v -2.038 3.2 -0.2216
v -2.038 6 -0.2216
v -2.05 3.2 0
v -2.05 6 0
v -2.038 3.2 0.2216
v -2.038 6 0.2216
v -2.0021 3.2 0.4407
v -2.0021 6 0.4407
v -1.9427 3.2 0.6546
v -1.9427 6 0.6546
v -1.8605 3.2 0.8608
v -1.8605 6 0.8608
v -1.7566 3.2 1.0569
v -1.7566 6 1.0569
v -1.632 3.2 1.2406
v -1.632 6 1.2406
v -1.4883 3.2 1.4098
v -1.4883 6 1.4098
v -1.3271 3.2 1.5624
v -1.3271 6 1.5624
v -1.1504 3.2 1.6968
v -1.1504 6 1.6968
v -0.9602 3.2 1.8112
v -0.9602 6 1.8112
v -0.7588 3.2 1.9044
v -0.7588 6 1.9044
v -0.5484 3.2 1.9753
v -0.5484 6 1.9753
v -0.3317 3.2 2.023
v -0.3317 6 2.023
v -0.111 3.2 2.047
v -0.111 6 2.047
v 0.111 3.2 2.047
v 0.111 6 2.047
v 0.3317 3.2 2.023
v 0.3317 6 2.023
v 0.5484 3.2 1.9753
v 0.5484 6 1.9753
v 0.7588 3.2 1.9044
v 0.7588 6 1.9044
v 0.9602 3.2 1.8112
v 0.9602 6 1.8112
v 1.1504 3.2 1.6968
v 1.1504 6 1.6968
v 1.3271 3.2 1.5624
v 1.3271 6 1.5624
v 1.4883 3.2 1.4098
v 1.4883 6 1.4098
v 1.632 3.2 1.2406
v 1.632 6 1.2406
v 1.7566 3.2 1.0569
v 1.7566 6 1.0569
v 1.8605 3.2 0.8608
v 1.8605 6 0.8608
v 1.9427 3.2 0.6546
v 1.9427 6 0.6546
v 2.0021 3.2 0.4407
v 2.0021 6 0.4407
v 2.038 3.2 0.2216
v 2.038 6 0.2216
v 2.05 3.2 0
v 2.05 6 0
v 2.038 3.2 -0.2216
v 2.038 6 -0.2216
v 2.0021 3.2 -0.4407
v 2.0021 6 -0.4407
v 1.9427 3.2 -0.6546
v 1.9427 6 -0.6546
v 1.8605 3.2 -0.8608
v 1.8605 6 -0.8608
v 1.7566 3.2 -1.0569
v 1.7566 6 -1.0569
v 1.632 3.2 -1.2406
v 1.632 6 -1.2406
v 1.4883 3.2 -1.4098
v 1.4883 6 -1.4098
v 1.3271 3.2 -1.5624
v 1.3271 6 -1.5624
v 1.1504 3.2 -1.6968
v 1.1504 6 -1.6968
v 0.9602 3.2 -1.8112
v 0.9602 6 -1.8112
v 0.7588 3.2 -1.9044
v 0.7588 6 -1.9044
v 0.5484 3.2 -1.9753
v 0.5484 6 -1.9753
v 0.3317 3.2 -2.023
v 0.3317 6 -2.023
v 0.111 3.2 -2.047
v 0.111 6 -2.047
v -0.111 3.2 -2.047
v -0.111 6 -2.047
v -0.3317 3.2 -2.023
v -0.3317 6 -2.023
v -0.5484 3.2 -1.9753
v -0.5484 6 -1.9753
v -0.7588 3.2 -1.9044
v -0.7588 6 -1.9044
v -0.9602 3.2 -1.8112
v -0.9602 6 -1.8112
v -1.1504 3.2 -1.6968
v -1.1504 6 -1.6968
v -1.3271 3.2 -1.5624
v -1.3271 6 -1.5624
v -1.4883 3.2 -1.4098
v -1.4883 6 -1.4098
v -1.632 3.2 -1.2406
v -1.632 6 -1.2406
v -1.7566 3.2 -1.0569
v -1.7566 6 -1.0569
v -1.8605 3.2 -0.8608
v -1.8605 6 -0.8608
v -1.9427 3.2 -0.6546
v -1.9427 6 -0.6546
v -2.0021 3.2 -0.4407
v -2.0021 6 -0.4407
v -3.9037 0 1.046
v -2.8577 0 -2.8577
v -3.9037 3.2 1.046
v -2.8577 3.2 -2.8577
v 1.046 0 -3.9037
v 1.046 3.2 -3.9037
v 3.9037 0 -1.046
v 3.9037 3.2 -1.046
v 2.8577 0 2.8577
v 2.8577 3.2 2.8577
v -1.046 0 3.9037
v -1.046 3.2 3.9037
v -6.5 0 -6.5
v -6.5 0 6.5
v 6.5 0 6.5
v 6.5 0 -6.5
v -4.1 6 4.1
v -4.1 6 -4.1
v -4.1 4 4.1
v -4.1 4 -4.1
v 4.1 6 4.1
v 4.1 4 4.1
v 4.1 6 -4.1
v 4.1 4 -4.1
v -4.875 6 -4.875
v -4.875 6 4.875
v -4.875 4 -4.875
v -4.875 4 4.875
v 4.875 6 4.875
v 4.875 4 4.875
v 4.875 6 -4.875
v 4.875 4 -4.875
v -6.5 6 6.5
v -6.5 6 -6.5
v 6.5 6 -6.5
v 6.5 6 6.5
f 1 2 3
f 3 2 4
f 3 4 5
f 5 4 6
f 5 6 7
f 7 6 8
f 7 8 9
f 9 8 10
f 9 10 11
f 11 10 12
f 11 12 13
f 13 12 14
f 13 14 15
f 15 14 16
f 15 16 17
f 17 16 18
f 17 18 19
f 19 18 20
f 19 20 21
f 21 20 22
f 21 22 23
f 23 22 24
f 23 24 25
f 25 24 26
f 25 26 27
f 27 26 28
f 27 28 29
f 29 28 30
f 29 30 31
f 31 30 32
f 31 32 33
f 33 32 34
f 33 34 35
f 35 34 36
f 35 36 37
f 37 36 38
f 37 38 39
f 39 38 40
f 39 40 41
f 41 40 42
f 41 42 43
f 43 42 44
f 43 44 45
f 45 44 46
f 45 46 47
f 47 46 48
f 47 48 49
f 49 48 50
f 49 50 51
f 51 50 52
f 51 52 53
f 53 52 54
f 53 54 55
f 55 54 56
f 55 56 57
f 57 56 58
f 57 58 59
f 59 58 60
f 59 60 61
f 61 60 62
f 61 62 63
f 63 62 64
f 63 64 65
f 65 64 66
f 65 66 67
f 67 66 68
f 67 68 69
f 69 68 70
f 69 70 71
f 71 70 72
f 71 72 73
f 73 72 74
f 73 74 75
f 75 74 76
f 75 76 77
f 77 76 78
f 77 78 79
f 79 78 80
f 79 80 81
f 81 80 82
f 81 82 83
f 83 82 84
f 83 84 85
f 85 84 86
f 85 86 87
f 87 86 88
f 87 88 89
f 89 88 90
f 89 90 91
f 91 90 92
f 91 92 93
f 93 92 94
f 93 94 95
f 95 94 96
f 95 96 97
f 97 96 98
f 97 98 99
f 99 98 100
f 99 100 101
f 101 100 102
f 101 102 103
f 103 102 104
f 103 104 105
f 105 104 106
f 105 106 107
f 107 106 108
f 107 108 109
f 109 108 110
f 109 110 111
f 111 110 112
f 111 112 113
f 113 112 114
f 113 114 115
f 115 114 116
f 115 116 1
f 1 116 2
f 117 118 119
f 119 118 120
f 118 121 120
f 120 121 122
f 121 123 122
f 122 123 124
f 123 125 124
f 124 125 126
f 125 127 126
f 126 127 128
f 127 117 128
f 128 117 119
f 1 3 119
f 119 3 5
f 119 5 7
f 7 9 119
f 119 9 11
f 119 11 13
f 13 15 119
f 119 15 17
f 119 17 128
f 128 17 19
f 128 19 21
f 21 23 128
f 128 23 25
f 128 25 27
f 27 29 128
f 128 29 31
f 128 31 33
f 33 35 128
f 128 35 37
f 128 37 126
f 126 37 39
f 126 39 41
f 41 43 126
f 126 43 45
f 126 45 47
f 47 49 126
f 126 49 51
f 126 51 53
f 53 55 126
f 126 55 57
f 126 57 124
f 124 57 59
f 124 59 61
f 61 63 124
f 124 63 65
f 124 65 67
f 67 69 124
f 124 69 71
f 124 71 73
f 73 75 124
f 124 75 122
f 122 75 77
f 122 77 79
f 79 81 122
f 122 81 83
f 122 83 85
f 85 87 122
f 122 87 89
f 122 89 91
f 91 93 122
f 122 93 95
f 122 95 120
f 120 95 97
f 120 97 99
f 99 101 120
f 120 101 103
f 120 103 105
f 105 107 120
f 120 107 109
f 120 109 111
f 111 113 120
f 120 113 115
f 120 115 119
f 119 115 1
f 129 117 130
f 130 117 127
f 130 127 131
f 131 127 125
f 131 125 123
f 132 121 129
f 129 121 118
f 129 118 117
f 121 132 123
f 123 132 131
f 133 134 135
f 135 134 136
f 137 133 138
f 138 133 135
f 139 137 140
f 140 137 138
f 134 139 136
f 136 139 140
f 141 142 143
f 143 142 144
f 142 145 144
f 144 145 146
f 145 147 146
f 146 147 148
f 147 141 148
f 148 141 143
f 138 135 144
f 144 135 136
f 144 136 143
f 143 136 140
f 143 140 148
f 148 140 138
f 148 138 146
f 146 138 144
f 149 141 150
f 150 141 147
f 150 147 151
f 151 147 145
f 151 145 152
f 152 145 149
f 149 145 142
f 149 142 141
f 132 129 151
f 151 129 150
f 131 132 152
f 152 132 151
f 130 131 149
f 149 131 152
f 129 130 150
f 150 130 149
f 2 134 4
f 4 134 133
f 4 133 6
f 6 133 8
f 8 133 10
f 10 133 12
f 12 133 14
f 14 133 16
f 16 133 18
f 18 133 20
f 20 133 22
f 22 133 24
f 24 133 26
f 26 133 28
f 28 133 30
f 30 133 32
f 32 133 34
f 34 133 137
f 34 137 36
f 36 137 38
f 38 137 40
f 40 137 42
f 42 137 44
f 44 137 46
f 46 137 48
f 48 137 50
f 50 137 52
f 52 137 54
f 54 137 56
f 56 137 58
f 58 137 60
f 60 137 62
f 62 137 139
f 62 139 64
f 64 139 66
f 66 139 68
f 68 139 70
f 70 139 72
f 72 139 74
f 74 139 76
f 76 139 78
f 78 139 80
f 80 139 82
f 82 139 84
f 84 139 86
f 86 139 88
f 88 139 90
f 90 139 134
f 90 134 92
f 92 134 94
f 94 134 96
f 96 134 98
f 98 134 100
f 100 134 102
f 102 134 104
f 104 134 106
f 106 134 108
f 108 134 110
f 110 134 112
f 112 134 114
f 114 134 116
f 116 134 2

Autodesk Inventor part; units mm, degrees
ref_plane "YZ Plane" through (0, 0, 0) normal (1, 0, 0) x (0, 1, 0)
ref_plane "XY Plane" through (0, 0, 0) normal (0, 0, 1) x (1, 0, 0)
ref_plane "作業平面2" through (0, 6, 0) normal (0, 1, 0) x (-1, 0, 0)
sketch "スケッチ3" plane through (0, 6, 0) normal (0, 1, 0) x (-1, 0, 0)
  line L0 (4.1, -4.1) -> (-4.1, -4.1)
  line L1 (-4.1, -4.1) -> (-4.1, 4.1)
  line L2 (-4.1, 4.1) -> (4.1, 4.1)
  line L3 (4.1, 4.1) -> (4.1, -4.1)
  line L4 (4.1, -4.1) -> (-4.1, 4.1) construction
  line L5 (-4.1, -4.1) -> (4.1, 4.1) construction
  line L6 (4.875, -4.875) -> (-4.875, -4.875)
  line L7 (-4.875, -4.875) -> (-4.875, 4.875)
  line L8 (-4.875, 4.875) -> (4.875, 4.875)
  line L9 (4.875, 4.875) -> (4.875, -4.875)
  line L10 (4.875, -4.875) -> (-4.875, 4.875) construction
  line L11 (-4.875, -4.875) -> (4.875, 4.875) construction
  point P0 (0, 0)
  point P1 (0, 0)
  dimension "d19" = 8.2
  dimension "d20" = 8.2
  dimension "d21" = 9.75
  dimension "d22" = 9.75
sketch "スケッチ1" plane through (0, 0, 0) normal (0, 1, 0) x (-1, 0, 0)
  line L0 (6.5, -6.5) -> (-6.5, 6.5) construction
  line L1 (-6.5, -6.5) -> (6.5, 6.5) construction
  line L2 (1.046, 3.9037) -> (3.9037, 1.046)
  line L3 (3.9037, 1.046) -> (2.8577, -2.8577)
  line L4 (2.8577, -2.8577) -> (-1.046, -3.9037)
  line L5 (-1.046, -3.9037) -> (-3.9037, -1.046)
  line L6 (-3.9037, -1.046) -> (-2.8577, 2.8577)
  line L7 (-2.8577, 2.8577) -> (1.046, 3.9037)
  line L8 (-6.5, -6.5) -> (6.5, -6.5)
  line L9 (6.5, -6.5) -> (6.5, 6.5)
  line L10 (6.5, 6.5) -> (-6.5, 6.5)
  line L11 (-6.5, 6.5) -> (-6.5, -6.5)
  line L12 (-6.5, -6.5) -> (6.5, 6.5) construction
  line L13 (6.5, -6.5) -> (-6.5, 6.5) construction
  circle A0 centre (0, 0) radius 2.05
  dimension "d33" = 7
  dimension "d34" = 13
  dimension "d35" = 13
  dimension "d36" = 4.1
extrude "押し出し8" add sketch "スケッチ1" along normal blind 6 contours L2 L3 L4 L5 L6 L7 | L11 L10 L9 L8 | A0
extrude "押し出し9" cut sketch "スケッチ3" against normal blind 2
extrude "押し出し10" cut sketch "スケッチ1" along normal blind 3.2 contours L2 L3 L4 L5 L6 L7
extrude "押し出し11" cut sketch "スケッチ1" along normal blind 6 contours A0
properties part number "pin_joint_plastic_ver1"
